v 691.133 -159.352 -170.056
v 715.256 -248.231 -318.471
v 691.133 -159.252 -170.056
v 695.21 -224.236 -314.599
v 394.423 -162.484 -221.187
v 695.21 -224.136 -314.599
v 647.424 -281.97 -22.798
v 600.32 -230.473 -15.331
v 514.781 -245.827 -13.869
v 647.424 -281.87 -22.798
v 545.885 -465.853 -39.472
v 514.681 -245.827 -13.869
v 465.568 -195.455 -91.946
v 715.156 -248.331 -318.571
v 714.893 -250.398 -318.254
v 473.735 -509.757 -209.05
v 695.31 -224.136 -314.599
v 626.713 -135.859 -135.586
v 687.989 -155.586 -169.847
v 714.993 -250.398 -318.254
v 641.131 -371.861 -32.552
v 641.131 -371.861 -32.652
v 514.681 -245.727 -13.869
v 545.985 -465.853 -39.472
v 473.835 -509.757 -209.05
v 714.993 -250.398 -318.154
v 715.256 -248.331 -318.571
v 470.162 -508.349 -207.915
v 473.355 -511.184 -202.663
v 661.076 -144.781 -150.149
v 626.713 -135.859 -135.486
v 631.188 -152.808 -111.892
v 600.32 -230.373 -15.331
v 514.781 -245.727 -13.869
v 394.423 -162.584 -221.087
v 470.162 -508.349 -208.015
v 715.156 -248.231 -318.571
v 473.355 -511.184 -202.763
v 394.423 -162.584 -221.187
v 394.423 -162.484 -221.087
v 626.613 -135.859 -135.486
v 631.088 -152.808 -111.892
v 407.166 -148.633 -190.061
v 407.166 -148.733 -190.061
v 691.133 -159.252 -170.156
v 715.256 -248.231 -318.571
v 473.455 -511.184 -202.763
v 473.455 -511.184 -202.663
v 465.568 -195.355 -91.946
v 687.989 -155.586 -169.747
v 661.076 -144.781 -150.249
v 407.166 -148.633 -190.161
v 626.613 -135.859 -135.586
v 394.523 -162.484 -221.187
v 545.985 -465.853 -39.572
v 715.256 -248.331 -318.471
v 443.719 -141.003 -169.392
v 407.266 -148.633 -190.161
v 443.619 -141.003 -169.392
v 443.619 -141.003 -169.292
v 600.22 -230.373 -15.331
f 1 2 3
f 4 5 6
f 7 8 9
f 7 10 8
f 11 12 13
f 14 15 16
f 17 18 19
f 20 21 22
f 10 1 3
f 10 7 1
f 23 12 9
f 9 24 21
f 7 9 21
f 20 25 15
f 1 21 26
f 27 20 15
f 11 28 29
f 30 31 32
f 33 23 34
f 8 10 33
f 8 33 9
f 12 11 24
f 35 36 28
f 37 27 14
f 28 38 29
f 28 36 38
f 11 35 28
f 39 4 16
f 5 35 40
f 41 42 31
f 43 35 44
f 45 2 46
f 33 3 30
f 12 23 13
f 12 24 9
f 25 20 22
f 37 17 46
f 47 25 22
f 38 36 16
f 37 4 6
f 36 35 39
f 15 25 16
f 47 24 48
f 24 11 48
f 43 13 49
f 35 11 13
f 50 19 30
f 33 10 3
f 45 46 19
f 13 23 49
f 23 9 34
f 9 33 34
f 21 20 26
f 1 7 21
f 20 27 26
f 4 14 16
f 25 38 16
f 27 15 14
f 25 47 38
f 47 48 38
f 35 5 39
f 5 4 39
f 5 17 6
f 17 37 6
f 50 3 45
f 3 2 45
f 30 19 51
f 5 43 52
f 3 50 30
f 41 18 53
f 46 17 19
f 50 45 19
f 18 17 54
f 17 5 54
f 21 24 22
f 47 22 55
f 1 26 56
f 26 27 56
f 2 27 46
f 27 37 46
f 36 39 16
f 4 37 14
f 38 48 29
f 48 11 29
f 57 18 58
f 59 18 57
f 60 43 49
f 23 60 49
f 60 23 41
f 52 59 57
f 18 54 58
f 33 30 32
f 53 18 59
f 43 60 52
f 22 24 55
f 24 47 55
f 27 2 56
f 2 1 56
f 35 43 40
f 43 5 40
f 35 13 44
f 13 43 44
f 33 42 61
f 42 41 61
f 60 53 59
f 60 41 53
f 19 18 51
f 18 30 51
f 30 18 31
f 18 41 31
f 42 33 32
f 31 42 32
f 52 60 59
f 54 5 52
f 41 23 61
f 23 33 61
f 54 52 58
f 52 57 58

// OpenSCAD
hull(){ translate([647.324169452,-281.969779658,-22.8975373491])cube(0.1,0.1,0.1);
translate([600.21978022,-230.473372781,-15.4311073542])cube(0.1,0.1,0.1);
translate([514.680851064,-245.826513912,-13.968903437])cube(0.1,0.1,0.1);
translate([691.032503277,-159.351769332,-170.156487549])cube(0.1,0.1,0.1);
translate([687.888798948,-155.68602651,-169.846706466])cube(0.1,0.1,0.1);
translate([660.976138829,-144.880694143,-150.249457701])cube(0.1,0.1,0.1);
translate([626.613088404,-135.958668197,-135.585533869])cube(0.1,0.1,0.1);
translate([631.087680355,-152.907880133,-111.992230855])cube(0.1,0.1,0.1);
translate([394.423076923,-162.58361204,-221.18729097])cube(0.1,0.1,0.1);
translate([407.165898618,-148.732718894,-190.161290323])cube(0.1,0.1,0.1);
translate([465.568181818,-195.454545455,-92.0454545455])cube(0.1,0.1,0.1);
translate([443.618556701,-141.103092784,-169.391752577])cube(0.1,0.1,0.1);
translate([715.156411582,-248.330532575,-318.570966908])cube(0.1,0.1,0.1);
translate([695.209617756,-224.235511714,-314.599260173])cube(0.1,0.1,0.1);
translate([470.162063456,-508.348550559,-208.015293312])cube(0.1,0.1,0.1);
translate([473.734888951,-509.756817543,-209.049761035])cube(0.1,0.1,0.1);
translate([714.893146647,-250.397936625,-318.253500368])cube(0.1,0.1,0.1);
translate([473.355263158,-511.184210526,-202.763157895])cube(0.1,0.1,0.1);
translate([545.884655532,-465.853340292,-39.5720250522])cube(0.1,0.1,0.1);
translate([641.030769231,-371.860512821,-32.6523076923])cube(0.1,0.1,0.1); }
